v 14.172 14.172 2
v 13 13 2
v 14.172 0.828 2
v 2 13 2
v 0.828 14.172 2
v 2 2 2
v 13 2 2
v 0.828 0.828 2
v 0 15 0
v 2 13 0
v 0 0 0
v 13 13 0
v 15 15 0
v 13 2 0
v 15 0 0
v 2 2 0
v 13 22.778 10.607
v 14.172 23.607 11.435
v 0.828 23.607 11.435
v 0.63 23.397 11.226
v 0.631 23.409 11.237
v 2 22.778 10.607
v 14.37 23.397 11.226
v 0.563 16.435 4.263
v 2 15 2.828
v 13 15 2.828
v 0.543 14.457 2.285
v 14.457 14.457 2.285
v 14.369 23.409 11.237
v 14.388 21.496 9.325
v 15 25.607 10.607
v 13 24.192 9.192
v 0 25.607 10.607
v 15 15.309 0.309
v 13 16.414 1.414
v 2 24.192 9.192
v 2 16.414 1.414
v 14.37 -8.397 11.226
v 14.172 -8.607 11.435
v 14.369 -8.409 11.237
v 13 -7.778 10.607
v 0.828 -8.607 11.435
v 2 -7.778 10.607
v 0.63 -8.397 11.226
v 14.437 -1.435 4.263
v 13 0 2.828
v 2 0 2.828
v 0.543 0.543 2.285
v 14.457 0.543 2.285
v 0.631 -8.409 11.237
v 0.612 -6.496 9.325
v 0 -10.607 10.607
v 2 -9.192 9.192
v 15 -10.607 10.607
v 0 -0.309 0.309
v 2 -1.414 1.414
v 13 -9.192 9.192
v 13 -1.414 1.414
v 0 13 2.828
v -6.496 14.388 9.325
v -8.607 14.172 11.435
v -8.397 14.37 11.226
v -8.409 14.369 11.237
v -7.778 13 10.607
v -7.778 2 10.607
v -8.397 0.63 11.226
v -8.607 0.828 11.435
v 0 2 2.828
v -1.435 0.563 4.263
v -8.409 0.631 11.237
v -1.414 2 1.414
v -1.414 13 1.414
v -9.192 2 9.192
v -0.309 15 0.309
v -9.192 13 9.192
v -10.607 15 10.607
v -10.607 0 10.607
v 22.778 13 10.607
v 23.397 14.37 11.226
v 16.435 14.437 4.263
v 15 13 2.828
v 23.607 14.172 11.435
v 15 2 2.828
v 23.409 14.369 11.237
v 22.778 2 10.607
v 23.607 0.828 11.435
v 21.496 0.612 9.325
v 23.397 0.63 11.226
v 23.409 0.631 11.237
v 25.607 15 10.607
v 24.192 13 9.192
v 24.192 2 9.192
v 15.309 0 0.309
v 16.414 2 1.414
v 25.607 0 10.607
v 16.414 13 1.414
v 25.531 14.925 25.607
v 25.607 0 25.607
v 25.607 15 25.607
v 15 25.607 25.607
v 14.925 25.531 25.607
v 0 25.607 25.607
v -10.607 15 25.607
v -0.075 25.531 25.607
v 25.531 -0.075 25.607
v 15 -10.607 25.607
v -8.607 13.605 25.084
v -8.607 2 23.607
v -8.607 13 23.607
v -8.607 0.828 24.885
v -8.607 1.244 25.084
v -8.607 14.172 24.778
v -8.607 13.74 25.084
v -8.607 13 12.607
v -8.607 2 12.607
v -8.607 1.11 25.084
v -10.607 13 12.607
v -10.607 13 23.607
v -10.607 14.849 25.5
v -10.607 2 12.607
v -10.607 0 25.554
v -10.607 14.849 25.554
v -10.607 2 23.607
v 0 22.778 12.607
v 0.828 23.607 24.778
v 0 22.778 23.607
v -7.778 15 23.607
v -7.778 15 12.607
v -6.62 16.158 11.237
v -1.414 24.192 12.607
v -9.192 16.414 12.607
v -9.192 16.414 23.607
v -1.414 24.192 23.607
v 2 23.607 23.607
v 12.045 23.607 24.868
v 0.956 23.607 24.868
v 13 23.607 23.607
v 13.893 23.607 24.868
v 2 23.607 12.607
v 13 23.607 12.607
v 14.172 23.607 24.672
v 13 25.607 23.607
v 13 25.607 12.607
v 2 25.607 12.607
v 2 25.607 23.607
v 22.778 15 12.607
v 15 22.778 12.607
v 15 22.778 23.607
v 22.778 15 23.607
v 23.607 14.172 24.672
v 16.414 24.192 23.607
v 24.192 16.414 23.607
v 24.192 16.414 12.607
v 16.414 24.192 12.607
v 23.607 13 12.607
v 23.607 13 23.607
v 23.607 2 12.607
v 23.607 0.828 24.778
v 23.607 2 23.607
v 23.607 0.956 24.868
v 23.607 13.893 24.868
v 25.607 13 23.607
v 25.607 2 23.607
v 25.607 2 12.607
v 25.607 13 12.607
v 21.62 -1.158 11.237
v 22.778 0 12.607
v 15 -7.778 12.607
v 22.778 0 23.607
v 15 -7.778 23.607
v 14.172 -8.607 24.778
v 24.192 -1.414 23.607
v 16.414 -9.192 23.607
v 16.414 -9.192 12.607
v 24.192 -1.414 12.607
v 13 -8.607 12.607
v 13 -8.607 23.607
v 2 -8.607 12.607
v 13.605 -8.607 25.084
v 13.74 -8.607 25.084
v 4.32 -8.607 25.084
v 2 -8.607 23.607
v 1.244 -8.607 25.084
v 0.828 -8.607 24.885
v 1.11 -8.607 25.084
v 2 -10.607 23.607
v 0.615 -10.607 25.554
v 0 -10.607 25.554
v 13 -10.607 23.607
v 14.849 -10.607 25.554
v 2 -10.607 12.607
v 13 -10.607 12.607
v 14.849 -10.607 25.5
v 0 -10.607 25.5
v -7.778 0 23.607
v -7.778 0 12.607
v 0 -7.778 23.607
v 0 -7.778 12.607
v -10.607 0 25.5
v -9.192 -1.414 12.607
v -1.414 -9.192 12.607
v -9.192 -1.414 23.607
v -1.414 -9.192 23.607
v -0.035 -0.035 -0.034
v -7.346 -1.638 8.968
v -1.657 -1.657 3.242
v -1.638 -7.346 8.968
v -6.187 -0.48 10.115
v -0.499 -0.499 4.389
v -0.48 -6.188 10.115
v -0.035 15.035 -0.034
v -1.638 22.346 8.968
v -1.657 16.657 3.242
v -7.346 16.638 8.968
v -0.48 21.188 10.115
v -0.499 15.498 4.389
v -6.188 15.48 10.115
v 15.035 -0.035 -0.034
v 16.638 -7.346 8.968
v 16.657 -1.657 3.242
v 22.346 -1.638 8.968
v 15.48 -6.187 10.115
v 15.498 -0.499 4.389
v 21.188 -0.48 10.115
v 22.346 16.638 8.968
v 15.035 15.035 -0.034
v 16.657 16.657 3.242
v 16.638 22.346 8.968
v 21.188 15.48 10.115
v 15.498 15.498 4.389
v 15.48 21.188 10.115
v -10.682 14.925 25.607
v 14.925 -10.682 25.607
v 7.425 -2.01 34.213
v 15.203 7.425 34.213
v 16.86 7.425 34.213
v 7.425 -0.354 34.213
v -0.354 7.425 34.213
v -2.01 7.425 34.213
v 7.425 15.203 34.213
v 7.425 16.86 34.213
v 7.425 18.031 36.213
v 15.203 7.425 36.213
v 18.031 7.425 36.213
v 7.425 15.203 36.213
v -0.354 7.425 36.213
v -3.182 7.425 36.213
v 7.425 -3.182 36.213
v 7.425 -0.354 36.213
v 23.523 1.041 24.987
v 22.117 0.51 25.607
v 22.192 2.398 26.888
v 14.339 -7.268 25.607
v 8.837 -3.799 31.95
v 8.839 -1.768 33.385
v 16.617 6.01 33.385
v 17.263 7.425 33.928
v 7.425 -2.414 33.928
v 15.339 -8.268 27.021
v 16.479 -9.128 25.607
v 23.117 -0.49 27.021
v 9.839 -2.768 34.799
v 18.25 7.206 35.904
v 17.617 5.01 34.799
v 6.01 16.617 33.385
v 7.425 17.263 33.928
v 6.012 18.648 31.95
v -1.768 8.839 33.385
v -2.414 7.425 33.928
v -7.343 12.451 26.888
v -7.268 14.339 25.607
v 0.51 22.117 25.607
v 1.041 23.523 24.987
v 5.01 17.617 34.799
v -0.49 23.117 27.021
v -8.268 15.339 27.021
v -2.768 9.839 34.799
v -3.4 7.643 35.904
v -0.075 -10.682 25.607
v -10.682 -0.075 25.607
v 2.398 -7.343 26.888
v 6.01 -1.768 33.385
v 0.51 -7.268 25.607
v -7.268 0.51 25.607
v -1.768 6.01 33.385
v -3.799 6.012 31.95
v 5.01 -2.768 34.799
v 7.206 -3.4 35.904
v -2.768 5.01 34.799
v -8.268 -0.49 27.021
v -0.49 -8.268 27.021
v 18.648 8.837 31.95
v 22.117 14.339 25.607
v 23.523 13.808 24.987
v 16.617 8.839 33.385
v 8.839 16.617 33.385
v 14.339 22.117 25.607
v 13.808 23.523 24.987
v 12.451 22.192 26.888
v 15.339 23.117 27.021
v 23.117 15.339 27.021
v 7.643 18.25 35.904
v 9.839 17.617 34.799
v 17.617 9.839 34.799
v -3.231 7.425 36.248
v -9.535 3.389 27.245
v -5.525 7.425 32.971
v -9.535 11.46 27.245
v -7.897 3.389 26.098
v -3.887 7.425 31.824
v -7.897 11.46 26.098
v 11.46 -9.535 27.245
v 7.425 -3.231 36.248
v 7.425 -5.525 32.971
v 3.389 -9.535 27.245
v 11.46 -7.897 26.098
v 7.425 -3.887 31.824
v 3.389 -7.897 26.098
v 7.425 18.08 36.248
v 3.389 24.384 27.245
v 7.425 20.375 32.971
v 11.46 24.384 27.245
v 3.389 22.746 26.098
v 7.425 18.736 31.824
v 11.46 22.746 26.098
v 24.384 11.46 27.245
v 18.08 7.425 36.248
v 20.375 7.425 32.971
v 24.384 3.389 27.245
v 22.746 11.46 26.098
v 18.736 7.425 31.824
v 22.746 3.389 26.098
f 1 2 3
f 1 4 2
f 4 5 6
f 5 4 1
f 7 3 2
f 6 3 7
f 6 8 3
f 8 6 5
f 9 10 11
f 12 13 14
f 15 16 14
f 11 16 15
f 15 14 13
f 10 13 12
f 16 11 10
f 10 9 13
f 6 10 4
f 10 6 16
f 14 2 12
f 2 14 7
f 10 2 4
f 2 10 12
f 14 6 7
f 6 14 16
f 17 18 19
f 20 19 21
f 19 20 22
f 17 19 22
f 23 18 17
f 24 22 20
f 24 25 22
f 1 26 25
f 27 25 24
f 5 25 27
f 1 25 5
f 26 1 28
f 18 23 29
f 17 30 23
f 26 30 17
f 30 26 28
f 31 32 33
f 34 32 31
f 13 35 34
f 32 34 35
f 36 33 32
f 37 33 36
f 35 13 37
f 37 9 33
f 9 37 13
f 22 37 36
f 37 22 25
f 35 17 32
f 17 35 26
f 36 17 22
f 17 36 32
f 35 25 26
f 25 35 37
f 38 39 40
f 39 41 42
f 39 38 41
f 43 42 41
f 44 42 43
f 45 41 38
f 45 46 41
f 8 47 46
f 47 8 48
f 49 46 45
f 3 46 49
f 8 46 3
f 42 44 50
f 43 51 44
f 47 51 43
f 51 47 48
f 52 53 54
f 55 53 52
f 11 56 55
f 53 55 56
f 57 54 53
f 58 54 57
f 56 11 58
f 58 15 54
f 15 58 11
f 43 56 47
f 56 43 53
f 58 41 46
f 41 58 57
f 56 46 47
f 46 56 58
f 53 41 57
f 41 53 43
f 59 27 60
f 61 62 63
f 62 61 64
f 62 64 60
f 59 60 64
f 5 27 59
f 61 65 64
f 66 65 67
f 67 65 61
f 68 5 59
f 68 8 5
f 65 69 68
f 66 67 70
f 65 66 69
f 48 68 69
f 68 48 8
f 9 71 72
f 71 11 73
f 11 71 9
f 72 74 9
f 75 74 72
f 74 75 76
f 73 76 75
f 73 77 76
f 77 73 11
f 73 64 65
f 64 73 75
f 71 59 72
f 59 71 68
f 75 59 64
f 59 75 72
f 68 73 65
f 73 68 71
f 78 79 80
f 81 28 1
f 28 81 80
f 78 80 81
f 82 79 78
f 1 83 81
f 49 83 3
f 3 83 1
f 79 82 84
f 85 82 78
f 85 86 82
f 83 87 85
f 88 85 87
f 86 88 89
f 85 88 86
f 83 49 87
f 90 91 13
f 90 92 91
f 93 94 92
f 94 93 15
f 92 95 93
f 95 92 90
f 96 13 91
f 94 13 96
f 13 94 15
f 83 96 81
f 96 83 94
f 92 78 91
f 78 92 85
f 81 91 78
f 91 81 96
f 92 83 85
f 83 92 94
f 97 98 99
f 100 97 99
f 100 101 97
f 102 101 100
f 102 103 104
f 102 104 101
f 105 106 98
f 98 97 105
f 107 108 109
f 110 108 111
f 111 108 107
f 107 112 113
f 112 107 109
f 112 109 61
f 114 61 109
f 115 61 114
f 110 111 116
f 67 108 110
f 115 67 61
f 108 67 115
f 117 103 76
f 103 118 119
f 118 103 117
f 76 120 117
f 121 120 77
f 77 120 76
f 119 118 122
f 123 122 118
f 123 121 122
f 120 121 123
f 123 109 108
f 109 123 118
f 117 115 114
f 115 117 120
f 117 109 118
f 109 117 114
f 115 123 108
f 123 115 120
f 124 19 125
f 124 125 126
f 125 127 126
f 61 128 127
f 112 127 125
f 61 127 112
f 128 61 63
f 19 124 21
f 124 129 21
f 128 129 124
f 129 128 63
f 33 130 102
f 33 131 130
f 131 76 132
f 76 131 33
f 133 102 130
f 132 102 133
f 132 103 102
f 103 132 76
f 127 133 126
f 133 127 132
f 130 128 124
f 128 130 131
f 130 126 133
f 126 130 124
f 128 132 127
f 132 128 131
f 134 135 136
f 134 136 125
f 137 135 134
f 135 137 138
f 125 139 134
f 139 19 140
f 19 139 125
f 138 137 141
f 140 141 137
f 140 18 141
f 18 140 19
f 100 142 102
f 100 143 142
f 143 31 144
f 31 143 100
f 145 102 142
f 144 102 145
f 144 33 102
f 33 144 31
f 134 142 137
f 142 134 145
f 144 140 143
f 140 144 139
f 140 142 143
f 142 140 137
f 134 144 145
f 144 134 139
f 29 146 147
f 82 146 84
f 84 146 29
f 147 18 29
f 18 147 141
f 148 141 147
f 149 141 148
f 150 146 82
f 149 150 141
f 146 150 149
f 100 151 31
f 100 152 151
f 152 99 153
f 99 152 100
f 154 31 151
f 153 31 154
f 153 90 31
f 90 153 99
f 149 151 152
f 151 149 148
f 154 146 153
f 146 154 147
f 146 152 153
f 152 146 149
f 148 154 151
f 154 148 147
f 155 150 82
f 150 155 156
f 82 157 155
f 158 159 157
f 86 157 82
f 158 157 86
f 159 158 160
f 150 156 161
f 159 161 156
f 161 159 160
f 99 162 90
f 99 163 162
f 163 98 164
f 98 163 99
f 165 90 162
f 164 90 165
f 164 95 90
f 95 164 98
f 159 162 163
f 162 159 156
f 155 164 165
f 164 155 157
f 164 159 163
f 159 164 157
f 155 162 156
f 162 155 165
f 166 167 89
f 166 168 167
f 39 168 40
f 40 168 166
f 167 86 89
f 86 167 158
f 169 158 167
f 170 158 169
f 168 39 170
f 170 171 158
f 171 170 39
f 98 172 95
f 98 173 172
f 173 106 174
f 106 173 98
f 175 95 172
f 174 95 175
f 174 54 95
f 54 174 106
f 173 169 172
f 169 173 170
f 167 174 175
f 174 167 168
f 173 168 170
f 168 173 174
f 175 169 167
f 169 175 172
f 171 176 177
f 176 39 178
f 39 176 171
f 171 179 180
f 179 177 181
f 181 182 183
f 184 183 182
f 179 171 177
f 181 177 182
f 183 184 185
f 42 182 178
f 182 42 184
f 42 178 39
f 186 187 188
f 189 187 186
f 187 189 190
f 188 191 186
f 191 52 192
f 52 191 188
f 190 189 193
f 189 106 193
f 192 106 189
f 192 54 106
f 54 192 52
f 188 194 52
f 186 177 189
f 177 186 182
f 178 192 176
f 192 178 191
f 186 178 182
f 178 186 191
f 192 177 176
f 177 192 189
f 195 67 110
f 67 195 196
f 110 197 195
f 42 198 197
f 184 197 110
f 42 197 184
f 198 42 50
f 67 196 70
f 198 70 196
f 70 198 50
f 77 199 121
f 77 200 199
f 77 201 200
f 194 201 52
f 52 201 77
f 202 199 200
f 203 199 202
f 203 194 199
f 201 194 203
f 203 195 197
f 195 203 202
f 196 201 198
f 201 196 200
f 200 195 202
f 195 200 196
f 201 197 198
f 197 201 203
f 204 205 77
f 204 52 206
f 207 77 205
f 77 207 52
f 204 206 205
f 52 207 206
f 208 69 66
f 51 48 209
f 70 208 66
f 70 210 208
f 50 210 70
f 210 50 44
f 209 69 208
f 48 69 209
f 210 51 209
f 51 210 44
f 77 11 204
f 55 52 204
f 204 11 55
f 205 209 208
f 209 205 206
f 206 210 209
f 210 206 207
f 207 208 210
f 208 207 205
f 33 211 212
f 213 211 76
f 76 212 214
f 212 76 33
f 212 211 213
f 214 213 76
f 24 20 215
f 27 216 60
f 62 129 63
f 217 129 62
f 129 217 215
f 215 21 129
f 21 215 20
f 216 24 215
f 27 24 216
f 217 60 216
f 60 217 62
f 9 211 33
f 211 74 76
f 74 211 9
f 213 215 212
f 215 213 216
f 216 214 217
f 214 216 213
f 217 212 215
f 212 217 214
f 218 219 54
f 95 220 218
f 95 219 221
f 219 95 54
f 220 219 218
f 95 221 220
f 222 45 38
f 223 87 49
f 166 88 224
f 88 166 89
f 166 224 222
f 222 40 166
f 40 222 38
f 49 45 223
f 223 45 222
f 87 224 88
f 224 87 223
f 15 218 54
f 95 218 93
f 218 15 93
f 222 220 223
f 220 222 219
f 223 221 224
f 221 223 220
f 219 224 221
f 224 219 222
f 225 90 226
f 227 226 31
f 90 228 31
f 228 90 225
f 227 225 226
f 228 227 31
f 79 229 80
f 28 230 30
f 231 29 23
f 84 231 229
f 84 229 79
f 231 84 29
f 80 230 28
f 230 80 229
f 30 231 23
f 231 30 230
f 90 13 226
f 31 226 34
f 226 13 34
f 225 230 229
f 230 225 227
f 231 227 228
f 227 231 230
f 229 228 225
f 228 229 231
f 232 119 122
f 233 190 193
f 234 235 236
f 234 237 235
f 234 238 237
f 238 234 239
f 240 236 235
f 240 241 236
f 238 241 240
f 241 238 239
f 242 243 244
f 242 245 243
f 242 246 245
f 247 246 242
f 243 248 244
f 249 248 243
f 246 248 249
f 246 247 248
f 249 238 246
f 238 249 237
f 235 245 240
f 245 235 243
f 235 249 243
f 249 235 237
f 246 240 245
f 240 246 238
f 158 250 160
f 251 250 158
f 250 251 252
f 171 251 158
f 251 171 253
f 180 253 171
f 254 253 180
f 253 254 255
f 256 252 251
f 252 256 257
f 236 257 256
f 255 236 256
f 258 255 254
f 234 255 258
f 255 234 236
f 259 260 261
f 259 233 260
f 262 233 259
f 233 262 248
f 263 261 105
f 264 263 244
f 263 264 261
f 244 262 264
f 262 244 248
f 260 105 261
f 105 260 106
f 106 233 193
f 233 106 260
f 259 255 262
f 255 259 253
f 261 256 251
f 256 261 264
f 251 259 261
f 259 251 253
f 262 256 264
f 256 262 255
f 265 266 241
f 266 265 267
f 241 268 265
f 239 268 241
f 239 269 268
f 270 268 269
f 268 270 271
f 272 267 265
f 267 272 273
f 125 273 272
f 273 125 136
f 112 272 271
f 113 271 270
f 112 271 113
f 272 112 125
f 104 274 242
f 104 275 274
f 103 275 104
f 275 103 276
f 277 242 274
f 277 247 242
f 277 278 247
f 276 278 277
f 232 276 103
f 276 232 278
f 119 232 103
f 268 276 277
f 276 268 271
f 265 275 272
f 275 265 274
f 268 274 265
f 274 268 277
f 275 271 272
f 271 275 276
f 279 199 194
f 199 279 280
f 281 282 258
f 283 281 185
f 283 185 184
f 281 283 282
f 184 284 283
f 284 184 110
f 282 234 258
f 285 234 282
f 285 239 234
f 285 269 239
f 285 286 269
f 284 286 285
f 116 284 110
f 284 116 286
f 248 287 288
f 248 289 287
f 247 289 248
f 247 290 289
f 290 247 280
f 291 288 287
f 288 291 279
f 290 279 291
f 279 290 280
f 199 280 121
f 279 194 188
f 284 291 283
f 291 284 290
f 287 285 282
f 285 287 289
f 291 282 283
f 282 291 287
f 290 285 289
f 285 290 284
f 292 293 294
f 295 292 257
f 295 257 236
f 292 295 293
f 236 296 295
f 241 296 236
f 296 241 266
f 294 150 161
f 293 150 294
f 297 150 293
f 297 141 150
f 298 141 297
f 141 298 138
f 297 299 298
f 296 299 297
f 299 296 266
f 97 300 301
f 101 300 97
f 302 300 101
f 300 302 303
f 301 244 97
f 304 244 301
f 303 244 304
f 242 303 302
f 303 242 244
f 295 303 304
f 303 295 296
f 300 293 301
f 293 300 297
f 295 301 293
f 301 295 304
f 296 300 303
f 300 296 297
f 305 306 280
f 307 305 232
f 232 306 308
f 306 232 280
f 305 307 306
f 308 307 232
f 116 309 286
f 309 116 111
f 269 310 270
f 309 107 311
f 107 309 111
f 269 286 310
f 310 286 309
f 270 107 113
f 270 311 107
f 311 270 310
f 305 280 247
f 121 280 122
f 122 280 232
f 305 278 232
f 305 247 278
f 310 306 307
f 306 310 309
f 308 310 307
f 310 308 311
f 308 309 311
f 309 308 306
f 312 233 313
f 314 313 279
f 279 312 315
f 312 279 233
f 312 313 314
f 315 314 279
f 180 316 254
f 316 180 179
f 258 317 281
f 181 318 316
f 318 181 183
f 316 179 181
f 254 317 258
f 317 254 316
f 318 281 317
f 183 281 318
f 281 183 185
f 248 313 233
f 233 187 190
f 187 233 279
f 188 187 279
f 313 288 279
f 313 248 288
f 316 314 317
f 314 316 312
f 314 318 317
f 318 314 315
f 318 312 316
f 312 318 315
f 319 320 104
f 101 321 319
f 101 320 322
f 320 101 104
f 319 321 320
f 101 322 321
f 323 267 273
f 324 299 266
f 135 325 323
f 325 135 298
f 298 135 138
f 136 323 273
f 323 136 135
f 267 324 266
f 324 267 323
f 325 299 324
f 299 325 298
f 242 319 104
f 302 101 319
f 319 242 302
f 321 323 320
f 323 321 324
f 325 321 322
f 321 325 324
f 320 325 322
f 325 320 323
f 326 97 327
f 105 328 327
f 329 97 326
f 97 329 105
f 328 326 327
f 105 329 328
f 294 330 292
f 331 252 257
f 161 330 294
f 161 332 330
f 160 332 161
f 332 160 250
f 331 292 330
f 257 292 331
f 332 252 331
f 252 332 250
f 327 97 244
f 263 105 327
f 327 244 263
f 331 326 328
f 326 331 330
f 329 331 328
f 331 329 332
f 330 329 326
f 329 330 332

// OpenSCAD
side_length = 15;
side_depth = 2;
oct_alter_length = sqrt((side_length*side_length)/2);
inner_tri_side = ((side_length*sin(60))-side_depth-(side_depth/cos(60)))/sin(60);

module square_face() {
    difference() {
        cube([side_length, side_length, side_depth]);
        translate([side_depth, side_depth, 0]) cube([side_length-(2*side_depth), side_length-(2*side_depth), side_depth]);
        }};

module triangle_face() {
    linear_extrude(side_depth)
    difference() {
        polygon([[0,0],[0,side_length],[sin(60)*        side_length,side_length/2]]);
        translate([side_depth,(side_length-inner_tri_side)/2,0]) polygon([[0,0],[0,inner_tri_side],[sin(60)*inner_tri_side,inner_tri_side/2]]);
}};


module centre_part() {      
square_face();
translate([0,side_length,0]) rotate ([45,0,0]) square_face();
translate([0,oct_alter_length+side_length,oct_alter_length]) rotate ([90,0,0]) square_face();
translate([0,oct_alter_length+side_length,oct_alter_length+side_length]) rotate ([135,0,0]) square_face();
translate([0,side_length,(oct_alter_length*2)+side_length]) rotate ([180,0,0]) square_face();
translate([0,0,(oct_alter_length*2)+side_length]) rotate ([225,0,0]) square_face();
translate([0,-oct_alter_length,oct_alter_length+side_length]) rotate ([270,0,0]) square_face();
translate([0,-oct_alter_length,oct_alter_length]) rotate ([315,0,0]) square_face();
}

//centre_part();

module top_part() {
square_face();
translate([0,side_length,0]) rotate ([45,0,0]) square_face();
translate([0,-oct_alter_length,oct_alter_length]) rotate ([315,0,0]) square_face();
translate([-oct_alter_length,0,oct_alter_length]) rotate ([0,45,0]) square_face();
translate([side_length,0,0]) rotate ([0,315,0]) square_face();
   translate([0,-oct_alter_length,oct_alter_length]) rotate([0,55,45]) triangle_face();
translate([side_length,0,0]) rotate ([0,315,0]) square_face();
translate([-oct_alter_length,side_length,oct_alter_length]) rotate([0,55,315]) triangle_face();
translate([side_length,0,0]) rotate ([0,315,0]) square_face();
translate([side_length+oct_alter_length,0,oct_alter_length]) rotate([0,55,135]) triangle_face();
translate([side_length,side_length+oct_alter_length,oct_alter_length]) rotate([0,55,225]) triangle_face();
}



translate([-oct_alter_length,0,oct_alter_length+side_length]) rotate([0,90,0])centre_part();
top_part();
translate([-oct_alter_length*0.3,oct_alter_length*0.7,side_length+(oct_alter_length*2)]) rotate([180,0,45]) top_part();
